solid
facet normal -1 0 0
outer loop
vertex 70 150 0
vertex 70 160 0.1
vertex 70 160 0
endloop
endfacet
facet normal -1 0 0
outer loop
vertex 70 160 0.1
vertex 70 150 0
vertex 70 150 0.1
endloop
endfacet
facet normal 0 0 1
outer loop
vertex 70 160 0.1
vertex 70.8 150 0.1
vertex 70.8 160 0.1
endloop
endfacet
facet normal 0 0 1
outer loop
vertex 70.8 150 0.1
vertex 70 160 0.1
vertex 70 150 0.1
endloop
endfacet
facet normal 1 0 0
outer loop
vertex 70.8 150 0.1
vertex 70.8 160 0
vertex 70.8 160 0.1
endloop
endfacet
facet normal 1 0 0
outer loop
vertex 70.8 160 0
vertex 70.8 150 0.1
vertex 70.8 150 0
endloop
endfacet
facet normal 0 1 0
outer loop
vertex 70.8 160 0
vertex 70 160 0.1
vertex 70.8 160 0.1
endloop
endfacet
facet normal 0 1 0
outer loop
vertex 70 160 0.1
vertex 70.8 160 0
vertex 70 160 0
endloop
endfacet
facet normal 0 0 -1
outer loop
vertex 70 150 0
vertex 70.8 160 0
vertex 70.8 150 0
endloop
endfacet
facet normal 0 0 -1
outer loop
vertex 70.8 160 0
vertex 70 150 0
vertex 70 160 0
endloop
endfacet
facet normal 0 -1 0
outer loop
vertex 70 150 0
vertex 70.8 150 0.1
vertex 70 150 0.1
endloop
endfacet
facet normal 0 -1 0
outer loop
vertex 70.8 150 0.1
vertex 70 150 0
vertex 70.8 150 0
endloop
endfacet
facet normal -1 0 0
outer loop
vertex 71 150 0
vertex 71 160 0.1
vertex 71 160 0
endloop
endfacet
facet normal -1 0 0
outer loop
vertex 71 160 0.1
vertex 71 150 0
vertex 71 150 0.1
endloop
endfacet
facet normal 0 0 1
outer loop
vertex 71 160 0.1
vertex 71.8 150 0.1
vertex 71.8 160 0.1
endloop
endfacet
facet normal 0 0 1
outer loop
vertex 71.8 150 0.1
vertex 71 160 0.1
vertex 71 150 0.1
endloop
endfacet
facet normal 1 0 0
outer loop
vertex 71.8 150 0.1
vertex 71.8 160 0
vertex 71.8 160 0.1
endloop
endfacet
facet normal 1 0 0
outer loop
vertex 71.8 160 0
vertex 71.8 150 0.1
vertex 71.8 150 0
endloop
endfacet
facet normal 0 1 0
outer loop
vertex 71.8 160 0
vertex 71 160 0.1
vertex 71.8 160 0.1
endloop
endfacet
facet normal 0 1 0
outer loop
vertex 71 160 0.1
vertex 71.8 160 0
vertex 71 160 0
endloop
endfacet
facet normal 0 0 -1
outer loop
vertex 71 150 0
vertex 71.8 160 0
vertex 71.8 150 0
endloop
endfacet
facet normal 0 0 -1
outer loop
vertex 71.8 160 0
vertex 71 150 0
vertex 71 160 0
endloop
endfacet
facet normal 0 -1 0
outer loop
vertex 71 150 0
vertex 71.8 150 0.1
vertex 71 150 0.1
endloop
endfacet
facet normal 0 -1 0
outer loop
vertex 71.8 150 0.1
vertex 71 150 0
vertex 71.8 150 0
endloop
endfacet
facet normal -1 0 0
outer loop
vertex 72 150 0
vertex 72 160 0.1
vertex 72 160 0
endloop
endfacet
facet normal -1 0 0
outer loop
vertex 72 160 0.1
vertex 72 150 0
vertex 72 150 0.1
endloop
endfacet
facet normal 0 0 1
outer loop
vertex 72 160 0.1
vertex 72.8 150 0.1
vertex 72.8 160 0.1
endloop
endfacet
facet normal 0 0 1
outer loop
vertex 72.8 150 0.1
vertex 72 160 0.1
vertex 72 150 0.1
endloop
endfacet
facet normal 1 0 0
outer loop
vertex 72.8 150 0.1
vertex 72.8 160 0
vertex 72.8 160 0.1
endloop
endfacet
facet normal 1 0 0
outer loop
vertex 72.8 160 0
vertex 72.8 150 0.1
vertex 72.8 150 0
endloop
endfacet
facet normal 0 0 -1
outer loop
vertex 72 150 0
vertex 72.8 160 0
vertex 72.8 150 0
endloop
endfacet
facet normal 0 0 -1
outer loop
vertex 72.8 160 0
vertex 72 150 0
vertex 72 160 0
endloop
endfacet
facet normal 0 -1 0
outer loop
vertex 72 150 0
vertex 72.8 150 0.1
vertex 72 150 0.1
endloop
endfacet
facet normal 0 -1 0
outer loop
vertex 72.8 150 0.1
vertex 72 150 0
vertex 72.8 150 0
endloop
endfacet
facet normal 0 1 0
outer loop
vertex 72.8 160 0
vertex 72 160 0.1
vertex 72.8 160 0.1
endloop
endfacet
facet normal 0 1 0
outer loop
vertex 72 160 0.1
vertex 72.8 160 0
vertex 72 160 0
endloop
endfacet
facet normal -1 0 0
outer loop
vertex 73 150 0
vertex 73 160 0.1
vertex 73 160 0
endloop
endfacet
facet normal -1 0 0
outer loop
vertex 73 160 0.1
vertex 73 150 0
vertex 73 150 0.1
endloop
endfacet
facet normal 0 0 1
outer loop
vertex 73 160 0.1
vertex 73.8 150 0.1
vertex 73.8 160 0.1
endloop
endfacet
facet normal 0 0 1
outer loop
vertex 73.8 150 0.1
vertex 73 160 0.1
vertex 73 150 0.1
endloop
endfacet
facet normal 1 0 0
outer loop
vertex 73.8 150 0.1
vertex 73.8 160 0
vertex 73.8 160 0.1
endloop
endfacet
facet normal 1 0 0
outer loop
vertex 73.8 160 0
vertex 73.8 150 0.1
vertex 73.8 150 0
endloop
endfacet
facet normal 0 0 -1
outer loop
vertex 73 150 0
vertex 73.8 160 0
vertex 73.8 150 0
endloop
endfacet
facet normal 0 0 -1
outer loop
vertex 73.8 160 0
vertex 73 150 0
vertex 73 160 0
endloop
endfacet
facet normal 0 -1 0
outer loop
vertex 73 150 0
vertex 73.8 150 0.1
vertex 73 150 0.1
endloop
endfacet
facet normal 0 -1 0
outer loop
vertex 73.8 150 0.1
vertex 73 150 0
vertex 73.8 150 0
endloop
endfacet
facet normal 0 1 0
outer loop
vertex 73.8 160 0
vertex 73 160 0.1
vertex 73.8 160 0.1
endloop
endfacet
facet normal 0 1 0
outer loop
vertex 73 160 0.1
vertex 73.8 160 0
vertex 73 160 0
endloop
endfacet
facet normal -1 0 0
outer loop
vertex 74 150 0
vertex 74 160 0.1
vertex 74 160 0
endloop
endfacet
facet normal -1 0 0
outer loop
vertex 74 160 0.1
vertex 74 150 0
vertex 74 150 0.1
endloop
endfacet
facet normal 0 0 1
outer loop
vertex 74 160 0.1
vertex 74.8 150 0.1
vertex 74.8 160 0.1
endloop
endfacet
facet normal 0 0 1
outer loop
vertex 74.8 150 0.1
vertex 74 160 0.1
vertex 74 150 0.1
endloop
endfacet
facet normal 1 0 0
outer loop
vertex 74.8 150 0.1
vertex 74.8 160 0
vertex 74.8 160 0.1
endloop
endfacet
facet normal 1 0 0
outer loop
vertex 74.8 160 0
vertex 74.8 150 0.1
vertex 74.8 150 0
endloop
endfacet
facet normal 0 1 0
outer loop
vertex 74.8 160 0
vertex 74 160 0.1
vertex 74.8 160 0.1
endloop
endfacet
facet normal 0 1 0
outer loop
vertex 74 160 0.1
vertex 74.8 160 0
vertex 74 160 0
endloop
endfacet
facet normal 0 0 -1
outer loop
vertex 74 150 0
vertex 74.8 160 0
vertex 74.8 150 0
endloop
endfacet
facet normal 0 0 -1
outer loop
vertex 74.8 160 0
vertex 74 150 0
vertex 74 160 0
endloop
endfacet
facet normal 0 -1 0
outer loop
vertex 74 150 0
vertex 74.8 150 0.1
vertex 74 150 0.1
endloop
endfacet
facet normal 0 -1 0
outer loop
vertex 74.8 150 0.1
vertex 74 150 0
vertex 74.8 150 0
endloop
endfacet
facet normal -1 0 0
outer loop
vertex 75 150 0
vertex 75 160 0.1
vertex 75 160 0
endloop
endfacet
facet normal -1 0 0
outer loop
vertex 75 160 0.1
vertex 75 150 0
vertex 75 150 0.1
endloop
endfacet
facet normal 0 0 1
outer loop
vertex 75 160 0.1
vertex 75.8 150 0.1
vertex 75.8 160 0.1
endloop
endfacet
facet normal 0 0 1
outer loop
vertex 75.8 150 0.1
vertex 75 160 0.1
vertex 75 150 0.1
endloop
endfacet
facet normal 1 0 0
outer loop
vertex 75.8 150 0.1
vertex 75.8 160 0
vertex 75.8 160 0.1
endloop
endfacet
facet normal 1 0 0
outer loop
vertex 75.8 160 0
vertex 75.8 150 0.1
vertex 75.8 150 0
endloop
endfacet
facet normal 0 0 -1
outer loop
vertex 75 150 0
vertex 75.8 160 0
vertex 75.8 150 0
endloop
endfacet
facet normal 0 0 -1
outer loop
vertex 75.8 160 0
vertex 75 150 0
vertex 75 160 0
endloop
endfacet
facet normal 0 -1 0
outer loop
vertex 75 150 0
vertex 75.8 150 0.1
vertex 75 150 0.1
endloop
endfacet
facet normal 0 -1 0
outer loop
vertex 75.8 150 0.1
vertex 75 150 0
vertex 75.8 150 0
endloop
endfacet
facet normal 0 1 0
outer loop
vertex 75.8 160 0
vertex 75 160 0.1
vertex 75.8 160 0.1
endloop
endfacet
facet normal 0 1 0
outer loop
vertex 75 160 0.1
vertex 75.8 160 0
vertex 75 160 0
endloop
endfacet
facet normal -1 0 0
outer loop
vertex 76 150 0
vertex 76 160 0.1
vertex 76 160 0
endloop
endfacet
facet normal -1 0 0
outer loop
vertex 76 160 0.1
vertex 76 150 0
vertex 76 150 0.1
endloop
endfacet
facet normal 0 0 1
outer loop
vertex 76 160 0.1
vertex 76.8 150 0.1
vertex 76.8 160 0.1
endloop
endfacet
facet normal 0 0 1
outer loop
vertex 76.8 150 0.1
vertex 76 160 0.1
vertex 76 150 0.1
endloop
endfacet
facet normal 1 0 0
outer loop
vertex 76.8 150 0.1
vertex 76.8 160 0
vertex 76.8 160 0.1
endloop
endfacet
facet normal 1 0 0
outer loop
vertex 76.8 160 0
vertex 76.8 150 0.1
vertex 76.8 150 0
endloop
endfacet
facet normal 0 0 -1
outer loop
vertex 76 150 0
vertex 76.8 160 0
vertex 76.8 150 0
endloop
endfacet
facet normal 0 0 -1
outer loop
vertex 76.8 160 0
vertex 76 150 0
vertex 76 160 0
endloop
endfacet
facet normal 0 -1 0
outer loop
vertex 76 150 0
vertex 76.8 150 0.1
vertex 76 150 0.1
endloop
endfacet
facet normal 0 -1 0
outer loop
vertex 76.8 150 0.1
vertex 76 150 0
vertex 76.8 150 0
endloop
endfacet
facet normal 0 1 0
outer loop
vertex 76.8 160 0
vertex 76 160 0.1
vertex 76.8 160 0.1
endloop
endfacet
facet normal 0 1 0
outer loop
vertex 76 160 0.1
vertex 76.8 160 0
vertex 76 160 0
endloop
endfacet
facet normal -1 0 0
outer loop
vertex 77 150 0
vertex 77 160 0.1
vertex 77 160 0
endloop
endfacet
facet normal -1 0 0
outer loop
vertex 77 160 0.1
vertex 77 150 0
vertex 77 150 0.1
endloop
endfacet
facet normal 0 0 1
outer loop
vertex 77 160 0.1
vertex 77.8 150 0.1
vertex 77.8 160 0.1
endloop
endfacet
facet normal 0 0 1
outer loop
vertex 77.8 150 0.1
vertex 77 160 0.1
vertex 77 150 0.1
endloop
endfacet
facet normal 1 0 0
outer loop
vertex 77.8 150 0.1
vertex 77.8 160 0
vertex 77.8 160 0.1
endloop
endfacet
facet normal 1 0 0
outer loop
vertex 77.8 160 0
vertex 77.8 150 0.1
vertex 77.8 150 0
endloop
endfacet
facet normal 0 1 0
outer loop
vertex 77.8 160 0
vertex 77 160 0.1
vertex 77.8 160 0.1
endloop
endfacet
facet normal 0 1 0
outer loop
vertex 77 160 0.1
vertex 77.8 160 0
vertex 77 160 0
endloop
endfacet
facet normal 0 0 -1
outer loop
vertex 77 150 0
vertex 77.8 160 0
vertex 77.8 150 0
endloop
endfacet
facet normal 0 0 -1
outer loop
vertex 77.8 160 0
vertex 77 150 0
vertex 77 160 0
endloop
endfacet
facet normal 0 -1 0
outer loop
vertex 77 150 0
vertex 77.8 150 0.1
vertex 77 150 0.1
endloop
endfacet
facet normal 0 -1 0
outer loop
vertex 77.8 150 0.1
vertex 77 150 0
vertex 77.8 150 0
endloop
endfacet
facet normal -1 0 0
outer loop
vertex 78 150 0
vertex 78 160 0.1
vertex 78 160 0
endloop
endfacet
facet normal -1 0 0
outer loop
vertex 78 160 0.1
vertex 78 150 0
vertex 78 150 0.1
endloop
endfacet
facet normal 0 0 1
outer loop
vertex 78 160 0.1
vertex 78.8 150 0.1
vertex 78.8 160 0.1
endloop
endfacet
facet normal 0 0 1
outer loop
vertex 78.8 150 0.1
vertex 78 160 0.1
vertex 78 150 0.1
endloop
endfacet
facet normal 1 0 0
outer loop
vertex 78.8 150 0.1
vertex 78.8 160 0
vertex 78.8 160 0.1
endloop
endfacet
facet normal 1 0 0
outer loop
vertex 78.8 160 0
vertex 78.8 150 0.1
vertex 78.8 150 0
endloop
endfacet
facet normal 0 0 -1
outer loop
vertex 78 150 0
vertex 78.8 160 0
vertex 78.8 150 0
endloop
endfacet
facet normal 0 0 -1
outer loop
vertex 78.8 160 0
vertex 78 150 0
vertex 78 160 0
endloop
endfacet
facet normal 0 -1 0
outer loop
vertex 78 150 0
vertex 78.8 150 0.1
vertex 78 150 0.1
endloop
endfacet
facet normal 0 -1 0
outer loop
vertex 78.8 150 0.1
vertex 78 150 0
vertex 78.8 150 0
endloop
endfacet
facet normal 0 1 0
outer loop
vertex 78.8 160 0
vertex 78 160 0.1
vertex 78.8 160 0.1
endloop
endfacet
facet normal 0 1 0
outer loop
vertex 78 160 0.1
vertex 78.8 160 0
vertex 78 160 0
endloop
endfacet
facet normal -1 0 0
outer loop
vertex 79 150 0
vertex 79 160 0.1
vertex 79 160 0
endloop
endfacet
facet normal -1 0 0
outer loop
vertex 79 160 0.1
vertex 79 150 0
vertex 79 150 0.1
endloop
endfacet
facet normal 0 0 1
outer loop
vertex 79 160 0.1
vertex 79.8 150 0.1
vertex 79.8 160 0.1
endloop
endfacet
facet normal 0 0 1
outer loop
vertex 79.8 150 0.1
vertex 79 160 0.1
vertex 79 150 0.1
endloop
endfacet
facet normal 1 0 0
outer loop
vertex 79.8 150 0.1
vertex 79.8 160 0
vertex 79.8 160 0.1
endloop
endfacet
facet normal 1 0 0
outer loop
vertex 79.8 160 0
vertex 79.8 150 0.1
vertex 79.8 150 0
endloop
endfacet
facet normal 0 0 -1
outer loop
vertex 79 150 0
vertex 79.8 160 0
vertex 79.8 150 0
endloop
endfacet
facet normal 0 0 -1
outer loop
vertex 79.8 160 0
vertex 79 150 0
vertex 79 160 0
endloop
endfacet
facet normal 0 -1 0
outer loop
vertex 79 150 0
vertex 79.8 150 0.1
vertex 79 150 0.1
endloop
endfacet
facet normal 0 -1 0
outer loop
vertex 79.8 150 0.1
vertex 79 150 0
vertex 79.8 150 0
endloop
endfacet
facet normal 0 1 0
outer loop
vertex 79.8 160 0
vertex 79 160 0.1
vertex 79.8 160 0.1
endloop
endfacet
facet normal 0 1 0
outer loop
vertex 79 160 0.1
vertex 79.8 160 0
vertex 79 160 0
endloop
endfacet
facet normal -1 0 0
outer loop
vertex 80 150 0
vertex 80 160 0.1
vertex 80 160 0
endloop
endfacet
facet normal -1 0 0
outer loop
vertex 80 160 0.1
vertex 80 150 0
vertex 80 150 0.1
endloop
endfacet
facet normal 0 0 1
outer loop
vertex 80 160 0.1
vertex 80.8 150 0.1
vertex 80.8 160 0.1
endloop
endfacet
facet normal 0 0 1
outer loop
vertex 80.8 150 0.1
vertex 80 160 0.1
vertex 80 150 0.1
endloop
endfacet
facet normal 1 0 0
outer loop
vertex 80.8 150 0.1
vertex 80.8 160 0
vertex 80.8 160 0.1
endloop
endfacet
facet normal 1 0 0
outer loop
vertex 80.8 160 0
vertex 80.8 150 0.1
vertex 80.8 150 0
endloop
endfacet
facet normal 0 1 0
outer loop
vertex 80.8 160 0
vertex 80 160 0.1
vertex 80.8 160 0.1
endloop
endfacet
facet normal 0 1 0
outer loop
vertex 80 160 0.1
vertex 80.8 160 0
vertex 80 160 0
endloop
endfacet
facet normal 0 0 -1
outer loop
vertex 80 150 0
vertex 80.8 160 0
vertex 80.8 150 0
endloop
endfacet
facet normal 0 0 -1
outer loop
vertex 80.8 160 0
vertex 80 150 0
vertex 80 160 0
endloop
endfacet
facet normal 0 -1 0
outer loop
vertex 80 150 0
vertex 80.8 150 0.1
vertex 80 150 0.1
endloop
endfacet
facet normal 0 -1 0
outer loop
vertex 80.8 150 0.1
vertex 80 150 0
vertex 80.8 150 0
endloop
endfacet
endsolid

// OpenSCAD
translate([10+60,10+140,0])
        for (i = [0 : 10]){
            translate([i,0,0])
                cube(size = [0.8,10,0.1]);
    }
